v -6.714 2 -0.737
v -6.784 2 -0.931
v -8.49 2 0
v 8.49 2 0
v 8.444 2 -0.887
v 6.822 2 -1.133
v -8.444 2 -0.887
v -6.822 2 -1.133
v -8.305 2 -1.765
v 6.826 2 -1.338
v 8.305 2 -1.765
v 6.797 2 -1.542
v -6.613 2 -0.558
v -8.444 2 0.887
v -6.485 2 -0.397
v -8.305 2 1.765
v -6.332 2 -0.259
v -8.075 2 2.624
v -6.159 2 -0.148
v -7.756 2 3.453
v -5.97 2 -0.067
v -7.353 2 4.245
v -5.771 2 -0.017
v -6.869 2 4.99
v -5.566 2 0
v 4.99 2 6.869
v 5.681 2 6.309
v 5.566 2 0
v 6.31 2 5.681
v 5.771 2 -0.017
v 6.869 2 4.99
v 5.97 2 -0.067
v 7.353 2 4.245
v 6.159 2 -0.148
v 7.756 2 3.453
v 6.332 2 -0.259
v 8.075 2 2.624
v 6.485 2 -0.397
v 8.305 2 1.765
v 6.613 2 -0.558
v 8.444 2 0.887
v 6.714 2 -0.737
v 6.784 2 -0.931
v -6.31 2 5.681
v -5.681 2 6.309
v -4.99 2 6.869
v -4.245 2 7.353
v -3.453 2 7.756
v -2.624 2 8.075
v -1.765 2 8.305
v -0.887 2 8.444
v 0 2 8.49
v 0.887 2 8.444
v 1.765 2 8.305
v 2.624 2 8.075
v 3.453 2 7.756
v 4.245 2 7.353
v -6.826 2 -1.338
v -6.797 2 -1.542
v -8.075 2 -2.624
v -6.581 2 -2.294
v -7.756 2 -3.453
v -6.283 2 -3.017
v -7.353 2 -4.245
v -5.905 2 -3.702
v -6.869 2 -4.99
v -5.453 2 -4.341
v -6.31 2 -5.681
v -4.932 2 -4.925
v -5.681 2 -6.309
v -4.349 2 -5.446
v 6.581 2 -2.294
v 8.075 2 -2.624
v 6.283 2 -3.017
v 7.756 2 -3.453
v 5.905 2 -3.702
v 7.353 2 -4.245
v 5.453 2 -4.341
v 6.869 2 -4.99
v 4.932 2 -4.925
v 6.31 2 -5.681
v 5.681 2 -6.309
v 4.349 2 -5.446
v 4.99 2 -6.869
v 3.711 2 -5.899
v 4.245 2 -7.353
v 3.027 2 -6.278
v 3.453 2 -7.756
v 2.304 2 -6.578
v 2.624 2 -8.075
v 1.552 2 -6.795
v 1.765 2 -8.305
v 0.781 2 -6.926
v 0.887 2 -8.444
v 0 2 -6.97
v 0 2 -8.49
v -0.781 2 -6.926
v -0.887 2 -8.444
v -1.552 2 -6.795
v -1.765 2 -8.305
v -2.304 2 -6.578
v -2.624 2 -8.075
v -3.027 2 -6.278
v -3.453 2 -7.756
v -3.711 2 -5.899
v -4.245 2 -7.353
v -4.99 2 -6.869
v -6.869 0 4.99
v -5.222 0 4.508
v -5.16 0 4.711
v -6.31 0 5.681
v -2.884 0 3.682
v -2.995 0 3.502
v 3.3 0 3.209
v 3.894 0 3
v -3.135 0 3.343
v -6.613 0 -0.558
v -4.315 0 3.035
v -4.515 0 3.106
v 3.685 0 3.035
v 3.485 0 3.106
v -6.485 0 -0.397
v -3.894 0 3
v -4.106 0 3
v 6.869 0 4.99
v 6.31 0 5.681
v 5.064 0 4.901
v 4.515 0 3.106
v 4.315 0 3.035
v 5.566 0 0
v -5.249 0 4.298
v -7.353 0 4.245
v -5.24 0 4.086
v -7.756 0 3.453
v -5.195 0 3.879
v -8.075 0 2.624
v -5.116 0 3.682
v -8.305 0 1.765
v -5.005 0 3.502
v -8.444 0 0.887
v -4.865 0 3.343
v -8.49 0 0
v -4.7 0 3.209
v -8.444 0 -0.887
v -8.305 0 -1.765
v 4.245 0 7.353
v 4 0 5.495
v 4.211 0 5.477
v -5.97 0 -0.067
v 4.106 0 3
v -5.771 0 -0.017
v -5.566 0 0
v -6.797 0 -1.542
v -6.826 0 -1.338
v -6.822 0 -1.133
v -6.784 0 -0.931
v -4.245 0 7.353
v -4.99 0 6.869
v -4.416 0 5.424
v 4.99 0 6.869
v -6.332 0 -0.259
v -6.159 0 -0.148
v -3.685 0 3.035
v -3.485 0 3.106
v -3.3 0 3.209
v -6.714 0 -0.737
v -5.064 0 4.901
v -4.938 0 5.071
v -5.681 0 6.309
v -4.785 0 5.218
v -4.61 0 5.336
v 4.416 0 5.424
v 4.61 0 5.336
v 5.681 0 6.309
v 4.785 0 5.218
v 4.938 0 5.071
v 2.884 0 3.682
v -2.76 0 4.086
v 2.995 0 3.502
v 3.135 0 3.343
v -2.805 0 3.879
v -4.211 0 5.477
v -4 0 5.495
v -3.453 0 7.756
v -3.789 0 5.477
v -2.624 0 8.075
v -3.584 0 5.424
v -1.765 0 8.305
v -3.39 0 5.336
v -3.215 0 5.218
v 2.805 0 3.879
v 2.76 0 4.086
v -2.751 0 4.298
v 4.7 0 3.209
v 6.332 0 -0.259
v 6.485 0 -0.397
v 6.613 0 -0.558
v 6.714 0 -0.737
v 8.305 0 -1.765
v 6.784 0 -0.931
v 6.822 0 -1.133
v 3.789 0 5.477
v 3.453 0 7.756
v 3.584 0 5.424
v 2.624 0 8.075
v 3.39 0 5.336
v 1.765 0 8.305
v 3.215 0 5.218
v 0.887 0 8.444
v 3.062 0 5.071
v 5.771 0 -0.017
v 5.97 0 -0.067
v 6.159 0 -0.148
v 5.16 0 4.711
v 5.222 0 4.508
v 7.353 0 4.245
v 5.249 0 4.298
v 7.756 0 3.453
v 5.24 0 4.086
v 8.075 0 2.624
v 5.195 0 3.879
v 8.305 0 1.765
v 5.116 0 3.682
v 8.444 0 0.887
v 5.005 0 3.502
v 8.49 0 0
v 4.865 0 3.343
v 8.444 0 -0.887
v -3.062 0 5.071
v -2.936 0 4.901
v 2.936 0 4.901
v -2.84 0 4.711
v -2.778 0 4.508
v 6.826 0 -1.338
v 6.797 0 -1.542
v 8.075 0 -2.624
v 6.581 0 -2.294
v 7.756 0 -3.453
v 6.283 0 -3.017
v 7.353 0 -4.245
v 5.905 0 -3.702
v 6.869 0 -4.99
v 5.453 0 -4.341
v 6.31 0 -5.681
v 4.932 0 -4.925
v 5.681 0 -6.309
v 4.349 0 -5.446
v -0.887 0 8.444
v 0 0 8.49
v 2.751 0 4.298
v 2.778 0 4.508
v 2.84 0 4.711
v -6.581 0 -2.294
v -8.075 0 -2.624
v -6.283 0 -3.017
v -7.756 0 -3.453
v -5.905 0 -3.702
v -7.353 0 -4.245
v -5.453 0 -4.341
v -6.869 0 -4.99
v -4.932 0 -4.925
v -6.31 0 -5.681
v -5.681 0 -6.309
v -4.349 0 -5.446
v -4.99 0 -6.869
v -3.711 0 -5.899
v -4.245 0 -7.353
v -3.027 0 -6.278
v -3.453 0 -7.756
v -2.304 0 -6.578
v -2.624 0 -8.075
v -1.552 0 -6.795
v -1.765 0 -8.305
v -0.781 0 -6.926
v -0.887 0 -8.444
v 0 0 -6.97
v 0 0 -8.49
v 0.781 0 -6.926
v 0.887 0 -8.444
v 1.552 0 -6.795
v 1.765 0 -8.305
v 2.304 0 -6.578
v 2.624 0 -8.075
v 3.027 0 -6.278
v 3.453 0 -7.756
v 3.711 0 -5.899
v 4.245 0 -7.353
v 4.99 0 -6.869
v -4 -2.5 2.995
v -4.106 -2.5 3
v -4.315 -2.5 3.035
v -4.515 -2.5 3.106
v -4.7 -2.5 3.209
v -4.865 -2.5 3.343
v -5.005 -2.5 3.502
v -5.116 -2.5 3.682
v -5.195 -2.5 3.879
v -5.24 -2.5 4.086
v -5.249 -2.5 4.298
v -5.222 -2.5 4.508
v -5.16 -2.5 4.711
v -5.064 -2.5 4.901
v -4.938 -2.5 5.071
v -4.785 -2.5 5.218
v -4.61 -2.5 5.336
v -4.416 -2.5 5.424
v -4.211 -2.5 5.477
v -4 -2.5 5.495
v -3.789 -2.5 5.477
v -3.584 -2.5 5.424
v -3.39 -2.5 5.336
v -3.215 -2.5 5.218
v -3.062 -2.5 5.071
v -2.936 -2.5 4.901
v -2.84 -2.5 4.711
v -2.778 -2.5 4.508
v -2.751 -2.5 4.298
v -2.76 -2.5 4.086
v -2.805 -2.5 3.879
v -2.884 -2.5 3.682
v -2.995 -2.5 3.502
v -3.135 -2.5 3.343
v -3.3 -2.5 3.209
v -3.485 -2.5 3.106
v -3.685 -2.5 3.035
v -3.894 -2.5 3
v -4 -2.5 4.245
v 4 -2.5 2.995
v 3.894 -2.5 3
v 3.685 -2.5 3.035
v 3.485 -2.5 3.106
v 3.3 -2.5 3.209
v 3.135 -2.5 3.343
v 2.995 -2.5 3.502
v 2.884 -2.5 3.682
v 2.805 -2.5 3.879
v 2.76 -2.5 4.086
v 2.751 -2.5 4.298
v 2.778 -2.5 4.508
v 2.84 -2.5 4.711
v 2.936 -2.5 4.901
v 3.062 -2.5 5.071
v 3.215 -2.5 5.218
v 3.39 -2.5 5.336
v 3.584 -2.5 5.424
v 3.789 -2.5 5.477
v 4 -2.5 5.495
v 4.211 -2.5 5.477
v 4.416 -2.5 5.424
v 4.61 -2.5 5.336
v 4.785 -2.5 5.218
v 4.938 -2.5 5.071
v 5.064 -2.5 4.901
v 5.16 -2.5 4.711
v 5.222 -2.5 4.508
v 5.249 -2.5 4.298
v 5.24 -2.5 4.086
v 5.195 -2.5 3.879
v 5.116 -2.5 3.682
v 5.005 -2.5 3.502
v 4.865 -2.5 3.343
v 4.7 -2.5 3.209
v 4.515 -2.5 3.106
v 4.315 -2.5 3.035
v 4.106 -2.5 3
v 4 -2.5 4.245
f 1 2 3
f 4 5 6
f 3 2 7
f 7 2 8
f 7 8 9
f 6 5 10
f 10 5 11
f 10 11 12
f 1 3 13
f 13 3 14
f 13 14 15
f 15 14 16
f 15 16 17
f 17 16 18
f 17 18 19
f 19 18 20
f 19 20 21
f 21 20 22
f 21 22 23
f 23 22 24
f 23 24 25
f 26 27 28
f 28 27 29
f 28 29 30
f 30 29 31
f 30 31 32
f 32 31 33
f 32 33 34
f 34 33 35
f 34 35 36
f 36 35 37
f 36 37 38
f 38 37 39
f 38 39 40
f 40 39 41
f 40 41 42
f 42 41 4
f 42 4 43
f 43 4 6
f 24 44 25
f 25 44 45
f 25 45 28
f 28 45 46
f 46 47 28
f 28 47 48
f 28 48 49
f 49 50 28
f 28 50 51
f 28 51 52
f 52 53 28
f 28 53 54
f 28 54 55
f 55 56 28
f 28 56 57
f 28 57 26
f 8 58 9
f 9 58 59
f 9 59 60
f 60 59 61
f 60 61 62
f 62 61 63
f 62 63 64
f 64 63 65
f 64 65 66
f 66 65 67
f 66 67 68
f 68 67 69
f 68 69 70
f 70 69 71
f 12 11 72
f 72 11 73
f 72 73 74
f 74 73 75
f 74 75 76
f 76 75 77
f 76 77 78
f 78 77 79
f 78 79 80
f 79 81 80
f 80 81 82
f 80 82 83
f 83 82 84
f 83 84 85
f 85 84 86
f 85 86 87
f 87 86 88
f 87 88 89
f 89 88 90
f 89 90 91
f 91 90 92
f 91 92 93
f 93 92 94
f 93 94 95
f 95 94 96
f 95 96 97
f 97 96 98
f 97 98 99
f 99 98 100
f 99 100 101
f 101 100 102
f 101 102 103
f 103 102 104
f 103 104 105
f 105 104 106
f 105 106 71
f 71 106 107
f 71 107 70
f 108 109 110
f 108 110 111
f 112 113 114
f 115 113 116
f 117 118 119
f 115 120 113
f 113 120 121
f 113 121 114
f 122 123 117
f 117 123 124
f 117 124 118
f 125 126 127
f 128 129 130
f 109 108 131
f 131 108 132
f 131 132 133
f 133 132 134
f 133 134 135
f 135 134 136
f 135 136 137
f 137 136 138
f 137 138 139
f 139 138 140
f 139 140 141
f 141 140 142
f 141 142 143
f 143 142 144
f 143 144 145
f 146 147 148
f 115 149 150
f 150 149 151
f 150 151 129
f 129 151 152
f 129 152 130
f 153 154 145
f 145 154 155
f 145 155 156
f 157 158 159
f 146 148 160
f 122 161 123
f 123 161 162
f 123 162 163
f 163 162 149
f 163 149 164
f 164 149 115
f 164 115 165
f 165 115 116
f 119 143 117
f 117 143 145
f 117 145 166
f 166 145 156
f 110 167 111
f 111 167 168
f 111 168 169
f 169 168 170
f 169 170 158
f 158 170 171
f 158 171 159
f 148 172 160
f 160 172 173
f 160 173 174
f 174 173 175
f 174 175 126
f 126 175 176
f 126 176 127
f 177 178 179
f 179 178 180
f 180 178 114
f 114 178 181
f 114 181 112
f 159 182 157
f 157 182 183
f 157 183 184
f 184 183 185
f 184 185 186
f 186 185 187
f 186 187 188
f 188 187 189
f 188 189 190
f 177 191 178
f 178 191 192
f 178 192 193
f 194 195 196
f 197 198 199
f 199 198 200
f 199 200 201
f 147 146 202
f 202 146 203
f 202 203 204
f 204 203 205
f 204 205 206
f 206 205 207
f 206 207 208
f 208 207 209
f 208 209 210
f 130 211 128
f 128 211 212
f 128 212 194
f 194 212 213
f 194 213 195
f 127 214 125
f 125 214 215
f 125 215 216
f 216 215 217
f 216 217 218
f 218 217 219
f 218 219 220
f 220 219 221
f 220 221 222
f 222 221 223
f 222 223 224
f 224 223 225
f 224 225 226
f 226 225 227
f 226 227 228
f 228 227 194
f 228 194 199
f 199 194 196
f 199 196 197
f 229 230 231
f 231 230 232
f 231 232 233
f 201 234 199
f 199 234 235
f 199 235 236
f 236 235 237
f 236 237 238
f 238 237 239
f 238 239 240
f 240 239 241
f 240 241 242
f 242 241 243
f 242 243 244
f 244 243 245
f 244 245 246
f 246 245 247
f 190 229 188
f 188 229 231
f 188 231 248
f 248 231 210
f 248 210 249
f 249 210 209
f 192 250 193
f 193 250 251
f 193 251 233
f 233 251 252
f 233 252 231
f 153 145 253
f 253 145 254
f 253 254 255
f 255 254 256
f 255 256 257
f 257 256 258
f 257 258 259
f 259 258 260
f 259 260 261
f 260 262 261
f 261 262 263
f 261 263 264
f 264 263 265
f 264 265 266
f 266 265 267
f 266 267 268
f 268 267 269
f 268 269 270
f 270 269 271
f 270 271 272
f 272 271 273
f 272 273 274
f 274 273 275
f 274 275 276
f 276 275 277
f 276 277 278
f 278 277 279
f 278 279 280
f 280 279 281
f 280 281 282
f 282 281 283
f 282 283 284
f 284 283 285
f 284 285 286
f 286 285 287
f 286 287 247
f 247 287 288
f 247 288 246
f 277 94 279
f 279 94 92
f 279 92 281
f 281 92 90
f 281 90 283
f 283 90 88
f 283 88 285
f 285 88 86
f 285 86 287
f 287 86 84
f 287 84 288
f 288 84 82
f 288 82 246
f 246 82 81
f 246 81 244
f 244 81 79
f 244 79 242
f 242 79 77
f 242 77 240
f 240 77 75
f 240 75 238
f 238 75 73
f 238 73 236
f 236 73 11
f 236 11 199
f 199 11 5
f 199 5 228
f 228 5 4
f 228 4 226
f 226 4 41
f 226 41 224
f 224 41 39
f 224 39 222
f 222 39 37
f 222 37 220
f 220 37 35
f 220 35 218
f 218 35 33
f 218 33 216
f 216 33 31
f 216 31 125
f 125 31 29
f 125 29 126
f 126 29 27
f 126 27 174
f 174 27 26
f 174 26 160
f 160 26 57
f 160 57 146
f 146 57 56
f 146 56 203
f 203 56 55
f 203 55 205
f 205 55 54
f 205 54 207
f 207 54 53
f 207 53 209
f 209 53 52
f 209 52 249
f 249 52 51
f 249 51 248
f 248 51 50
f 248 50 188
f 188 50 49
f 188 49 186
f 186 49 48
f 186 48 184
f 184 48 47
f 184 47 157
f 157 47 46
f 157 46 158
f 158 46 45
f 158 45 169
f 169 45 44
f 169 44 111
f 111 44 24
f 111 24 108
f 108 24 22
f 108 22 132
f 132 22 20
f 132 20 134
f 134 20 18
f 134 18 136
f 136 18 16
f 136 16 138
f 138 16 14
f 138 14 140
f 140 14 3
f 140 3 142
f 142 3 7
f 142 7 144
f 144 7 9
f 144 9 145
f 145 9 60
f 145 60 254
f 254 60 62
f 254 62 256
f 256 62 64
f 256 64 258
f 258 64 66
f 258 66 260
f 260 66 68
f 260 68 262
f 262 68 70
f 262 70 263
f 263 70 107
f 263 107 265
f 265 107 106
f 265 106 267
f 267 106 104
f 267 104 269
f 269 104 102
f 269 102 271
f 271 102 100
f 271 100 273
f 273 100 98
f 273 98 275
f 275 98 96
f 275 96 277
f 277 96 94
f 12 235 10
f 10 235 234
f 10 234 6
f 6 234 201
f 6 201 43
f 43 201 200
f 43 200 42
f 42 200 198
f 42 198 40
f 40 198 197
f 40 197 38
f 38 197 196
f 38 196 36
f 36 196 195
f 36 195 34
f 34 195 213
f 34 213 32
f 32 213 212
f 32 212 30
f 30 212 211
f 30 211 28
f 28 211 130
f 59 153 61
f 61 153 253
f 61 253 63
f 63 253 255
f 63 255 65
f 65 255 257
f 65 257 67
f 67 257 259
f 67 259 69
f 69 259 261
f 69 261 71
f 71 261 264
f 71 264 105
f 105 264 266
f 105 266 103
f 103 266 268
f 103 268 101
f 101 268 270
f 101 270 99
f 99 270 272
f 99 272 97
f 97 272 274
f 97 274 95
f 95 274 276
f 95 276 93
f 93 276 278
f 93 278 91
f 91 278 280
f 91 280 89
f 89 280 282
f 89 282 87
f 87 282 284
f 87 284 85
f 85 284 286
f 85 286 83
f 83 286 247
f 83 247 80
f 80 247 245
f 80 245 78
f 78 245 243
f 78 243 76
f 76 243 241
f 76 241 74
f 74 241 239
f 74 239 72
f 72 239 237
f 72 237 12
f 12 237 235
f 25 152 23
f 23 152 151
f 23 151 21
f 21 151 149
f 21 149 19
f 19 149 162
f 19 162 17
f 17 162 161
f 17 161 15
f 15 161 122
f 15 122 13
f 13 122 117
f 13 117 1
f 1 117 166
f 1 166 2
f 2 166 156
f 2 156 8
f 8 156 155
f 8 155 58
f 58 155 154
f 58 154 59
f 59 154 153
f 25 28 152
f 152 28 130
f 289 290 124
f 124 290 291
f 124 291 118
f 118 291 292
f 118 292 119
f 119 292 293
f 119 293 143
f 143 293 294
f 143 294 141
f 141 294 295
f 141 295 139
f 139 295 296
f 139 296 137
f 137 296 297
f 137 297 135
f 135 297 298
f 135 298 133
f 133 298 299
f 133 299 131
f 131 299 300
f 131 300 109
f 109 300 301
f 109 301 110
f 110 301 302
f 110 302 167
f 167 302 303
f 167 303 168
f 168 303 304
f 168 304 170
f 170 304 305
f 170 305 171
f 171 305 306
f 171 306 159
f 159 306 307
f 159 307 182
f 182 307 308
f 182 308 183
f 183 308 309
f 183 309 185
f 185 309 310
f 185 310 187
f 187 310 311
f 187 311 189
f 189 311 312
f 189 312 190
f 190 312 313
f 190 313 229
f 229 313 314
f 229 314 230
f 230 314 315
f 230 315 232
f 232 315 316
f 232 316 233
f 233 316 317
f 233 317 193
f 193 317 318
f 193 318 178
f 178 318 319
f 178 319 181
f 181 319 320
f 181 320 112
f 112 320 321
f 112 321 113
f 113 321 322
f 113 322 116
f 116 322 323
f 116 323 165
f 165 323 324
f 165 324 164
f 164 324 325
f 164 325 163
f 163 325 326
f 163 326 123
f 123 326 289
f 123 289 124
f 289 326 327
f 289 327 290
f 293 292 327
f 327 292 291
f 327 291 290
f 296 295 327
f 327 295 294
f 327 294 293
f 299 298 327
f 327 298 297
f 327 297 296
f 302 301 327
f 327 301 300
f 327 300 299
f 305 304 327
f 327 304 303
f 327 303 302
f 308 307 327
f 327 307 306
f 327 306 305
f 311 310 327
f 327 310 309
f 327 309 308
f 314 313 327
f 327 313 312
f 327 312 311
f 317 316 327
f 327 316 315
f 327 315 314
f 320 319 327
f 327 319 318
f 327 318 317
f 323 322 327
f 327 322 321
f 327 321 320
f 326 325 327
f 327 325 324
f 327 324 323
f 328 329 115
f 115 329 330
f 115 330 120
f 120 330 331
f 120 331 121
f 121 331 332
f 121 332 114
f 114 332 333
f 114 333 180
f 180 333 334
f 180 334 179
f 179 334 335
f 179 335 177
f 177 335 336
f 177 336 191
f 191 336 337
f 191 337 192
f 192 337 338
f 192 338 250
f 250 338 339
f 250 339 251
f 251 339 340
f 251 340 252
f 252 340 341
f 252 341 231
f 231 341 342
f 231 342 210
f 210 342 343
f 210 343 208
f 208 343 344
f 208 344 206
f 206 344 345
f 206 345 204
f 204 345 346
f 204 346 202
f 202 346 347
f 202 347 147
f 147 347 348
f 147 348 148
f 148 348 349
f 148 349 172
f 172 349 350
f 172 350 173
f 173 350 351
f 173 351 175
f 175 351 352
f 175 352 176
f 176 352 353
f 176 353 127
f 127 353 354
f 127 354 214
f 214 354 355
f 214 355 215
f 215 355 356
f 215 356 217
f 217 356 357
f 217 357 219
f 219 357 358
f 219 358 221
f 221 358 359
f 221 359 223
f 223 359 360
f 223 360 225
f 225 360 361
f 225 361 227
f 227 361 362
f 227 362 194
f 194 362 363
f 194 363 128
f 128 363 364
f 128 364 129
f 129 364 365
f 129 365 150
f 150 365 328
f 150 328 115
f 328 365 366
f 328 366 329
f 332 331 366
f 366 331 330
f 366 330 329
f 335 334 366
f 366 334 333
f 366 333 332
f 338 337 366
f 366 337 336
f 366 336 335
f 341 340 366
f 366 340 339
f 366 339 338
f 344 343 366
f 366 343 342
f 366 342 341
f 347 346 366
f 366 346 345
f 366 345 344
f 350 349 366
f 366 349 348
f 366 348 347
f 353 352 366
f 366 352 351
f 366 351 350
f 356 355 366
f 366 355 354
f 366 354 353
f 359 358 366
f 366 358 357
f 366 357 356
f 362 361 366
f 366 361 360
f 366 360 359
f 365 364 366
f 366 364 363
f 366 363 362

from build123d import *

# Parameters (mm, degrees)
SKETCH_1_R      = 8.490267481
EXTRUDE_1_DEPTH = 2
SKETCH_2_R      = 1.25
EXTRUDE_2_DEPTH = 2.5


with BuildPart() as part:
    # Эскиз1 → Бобышка-Вытянуть1 (new body)
    with BuildSketch(Plane(origin=(0, 0, 0), x_dir=(1, 0, 0), z_dir=(0, 1, 0))):
        with Locations(Location((0, 0, 0), (0, 0, 270))):
            Circle(SKETCH_1_R)
        with BuildLine():
            Line((5.565646409, 0), (-5.565646409, 0))
            ThreePointArc((-5.565646409, 0), (-6.552289655, 0.474742908), (-6.796984316, 1.5419684))
            ThreePointArc((-6.796984316, 1.5419684), (0, 6.969696), (6.796984316, 1.5419684))
            ThreePointArc((6.796984316, 1.5419684), (6.552289655, 0.474742908), (5.565646409, 0))
        make_face(mode=Mode.SUBTRACT)
    extrude(amount=EXTRUDE_1_DEPTH)

    # Эскиз2 → Бобышка-Вытянуть2 (add)
    with BuildSketch(Plane.XZ):
        with Locations(Location((-4, 4.24513374, 0), (0, 0, 90))):
            Circle(SKETCH_2_R)
        with Locations(Location((4, 4.24513374, 0), (0, 0, 90))):
            Circle(SKETCH_2_R)
    extrude(amount=EXTRUDE_2_DEPTH)


solid = part.part
